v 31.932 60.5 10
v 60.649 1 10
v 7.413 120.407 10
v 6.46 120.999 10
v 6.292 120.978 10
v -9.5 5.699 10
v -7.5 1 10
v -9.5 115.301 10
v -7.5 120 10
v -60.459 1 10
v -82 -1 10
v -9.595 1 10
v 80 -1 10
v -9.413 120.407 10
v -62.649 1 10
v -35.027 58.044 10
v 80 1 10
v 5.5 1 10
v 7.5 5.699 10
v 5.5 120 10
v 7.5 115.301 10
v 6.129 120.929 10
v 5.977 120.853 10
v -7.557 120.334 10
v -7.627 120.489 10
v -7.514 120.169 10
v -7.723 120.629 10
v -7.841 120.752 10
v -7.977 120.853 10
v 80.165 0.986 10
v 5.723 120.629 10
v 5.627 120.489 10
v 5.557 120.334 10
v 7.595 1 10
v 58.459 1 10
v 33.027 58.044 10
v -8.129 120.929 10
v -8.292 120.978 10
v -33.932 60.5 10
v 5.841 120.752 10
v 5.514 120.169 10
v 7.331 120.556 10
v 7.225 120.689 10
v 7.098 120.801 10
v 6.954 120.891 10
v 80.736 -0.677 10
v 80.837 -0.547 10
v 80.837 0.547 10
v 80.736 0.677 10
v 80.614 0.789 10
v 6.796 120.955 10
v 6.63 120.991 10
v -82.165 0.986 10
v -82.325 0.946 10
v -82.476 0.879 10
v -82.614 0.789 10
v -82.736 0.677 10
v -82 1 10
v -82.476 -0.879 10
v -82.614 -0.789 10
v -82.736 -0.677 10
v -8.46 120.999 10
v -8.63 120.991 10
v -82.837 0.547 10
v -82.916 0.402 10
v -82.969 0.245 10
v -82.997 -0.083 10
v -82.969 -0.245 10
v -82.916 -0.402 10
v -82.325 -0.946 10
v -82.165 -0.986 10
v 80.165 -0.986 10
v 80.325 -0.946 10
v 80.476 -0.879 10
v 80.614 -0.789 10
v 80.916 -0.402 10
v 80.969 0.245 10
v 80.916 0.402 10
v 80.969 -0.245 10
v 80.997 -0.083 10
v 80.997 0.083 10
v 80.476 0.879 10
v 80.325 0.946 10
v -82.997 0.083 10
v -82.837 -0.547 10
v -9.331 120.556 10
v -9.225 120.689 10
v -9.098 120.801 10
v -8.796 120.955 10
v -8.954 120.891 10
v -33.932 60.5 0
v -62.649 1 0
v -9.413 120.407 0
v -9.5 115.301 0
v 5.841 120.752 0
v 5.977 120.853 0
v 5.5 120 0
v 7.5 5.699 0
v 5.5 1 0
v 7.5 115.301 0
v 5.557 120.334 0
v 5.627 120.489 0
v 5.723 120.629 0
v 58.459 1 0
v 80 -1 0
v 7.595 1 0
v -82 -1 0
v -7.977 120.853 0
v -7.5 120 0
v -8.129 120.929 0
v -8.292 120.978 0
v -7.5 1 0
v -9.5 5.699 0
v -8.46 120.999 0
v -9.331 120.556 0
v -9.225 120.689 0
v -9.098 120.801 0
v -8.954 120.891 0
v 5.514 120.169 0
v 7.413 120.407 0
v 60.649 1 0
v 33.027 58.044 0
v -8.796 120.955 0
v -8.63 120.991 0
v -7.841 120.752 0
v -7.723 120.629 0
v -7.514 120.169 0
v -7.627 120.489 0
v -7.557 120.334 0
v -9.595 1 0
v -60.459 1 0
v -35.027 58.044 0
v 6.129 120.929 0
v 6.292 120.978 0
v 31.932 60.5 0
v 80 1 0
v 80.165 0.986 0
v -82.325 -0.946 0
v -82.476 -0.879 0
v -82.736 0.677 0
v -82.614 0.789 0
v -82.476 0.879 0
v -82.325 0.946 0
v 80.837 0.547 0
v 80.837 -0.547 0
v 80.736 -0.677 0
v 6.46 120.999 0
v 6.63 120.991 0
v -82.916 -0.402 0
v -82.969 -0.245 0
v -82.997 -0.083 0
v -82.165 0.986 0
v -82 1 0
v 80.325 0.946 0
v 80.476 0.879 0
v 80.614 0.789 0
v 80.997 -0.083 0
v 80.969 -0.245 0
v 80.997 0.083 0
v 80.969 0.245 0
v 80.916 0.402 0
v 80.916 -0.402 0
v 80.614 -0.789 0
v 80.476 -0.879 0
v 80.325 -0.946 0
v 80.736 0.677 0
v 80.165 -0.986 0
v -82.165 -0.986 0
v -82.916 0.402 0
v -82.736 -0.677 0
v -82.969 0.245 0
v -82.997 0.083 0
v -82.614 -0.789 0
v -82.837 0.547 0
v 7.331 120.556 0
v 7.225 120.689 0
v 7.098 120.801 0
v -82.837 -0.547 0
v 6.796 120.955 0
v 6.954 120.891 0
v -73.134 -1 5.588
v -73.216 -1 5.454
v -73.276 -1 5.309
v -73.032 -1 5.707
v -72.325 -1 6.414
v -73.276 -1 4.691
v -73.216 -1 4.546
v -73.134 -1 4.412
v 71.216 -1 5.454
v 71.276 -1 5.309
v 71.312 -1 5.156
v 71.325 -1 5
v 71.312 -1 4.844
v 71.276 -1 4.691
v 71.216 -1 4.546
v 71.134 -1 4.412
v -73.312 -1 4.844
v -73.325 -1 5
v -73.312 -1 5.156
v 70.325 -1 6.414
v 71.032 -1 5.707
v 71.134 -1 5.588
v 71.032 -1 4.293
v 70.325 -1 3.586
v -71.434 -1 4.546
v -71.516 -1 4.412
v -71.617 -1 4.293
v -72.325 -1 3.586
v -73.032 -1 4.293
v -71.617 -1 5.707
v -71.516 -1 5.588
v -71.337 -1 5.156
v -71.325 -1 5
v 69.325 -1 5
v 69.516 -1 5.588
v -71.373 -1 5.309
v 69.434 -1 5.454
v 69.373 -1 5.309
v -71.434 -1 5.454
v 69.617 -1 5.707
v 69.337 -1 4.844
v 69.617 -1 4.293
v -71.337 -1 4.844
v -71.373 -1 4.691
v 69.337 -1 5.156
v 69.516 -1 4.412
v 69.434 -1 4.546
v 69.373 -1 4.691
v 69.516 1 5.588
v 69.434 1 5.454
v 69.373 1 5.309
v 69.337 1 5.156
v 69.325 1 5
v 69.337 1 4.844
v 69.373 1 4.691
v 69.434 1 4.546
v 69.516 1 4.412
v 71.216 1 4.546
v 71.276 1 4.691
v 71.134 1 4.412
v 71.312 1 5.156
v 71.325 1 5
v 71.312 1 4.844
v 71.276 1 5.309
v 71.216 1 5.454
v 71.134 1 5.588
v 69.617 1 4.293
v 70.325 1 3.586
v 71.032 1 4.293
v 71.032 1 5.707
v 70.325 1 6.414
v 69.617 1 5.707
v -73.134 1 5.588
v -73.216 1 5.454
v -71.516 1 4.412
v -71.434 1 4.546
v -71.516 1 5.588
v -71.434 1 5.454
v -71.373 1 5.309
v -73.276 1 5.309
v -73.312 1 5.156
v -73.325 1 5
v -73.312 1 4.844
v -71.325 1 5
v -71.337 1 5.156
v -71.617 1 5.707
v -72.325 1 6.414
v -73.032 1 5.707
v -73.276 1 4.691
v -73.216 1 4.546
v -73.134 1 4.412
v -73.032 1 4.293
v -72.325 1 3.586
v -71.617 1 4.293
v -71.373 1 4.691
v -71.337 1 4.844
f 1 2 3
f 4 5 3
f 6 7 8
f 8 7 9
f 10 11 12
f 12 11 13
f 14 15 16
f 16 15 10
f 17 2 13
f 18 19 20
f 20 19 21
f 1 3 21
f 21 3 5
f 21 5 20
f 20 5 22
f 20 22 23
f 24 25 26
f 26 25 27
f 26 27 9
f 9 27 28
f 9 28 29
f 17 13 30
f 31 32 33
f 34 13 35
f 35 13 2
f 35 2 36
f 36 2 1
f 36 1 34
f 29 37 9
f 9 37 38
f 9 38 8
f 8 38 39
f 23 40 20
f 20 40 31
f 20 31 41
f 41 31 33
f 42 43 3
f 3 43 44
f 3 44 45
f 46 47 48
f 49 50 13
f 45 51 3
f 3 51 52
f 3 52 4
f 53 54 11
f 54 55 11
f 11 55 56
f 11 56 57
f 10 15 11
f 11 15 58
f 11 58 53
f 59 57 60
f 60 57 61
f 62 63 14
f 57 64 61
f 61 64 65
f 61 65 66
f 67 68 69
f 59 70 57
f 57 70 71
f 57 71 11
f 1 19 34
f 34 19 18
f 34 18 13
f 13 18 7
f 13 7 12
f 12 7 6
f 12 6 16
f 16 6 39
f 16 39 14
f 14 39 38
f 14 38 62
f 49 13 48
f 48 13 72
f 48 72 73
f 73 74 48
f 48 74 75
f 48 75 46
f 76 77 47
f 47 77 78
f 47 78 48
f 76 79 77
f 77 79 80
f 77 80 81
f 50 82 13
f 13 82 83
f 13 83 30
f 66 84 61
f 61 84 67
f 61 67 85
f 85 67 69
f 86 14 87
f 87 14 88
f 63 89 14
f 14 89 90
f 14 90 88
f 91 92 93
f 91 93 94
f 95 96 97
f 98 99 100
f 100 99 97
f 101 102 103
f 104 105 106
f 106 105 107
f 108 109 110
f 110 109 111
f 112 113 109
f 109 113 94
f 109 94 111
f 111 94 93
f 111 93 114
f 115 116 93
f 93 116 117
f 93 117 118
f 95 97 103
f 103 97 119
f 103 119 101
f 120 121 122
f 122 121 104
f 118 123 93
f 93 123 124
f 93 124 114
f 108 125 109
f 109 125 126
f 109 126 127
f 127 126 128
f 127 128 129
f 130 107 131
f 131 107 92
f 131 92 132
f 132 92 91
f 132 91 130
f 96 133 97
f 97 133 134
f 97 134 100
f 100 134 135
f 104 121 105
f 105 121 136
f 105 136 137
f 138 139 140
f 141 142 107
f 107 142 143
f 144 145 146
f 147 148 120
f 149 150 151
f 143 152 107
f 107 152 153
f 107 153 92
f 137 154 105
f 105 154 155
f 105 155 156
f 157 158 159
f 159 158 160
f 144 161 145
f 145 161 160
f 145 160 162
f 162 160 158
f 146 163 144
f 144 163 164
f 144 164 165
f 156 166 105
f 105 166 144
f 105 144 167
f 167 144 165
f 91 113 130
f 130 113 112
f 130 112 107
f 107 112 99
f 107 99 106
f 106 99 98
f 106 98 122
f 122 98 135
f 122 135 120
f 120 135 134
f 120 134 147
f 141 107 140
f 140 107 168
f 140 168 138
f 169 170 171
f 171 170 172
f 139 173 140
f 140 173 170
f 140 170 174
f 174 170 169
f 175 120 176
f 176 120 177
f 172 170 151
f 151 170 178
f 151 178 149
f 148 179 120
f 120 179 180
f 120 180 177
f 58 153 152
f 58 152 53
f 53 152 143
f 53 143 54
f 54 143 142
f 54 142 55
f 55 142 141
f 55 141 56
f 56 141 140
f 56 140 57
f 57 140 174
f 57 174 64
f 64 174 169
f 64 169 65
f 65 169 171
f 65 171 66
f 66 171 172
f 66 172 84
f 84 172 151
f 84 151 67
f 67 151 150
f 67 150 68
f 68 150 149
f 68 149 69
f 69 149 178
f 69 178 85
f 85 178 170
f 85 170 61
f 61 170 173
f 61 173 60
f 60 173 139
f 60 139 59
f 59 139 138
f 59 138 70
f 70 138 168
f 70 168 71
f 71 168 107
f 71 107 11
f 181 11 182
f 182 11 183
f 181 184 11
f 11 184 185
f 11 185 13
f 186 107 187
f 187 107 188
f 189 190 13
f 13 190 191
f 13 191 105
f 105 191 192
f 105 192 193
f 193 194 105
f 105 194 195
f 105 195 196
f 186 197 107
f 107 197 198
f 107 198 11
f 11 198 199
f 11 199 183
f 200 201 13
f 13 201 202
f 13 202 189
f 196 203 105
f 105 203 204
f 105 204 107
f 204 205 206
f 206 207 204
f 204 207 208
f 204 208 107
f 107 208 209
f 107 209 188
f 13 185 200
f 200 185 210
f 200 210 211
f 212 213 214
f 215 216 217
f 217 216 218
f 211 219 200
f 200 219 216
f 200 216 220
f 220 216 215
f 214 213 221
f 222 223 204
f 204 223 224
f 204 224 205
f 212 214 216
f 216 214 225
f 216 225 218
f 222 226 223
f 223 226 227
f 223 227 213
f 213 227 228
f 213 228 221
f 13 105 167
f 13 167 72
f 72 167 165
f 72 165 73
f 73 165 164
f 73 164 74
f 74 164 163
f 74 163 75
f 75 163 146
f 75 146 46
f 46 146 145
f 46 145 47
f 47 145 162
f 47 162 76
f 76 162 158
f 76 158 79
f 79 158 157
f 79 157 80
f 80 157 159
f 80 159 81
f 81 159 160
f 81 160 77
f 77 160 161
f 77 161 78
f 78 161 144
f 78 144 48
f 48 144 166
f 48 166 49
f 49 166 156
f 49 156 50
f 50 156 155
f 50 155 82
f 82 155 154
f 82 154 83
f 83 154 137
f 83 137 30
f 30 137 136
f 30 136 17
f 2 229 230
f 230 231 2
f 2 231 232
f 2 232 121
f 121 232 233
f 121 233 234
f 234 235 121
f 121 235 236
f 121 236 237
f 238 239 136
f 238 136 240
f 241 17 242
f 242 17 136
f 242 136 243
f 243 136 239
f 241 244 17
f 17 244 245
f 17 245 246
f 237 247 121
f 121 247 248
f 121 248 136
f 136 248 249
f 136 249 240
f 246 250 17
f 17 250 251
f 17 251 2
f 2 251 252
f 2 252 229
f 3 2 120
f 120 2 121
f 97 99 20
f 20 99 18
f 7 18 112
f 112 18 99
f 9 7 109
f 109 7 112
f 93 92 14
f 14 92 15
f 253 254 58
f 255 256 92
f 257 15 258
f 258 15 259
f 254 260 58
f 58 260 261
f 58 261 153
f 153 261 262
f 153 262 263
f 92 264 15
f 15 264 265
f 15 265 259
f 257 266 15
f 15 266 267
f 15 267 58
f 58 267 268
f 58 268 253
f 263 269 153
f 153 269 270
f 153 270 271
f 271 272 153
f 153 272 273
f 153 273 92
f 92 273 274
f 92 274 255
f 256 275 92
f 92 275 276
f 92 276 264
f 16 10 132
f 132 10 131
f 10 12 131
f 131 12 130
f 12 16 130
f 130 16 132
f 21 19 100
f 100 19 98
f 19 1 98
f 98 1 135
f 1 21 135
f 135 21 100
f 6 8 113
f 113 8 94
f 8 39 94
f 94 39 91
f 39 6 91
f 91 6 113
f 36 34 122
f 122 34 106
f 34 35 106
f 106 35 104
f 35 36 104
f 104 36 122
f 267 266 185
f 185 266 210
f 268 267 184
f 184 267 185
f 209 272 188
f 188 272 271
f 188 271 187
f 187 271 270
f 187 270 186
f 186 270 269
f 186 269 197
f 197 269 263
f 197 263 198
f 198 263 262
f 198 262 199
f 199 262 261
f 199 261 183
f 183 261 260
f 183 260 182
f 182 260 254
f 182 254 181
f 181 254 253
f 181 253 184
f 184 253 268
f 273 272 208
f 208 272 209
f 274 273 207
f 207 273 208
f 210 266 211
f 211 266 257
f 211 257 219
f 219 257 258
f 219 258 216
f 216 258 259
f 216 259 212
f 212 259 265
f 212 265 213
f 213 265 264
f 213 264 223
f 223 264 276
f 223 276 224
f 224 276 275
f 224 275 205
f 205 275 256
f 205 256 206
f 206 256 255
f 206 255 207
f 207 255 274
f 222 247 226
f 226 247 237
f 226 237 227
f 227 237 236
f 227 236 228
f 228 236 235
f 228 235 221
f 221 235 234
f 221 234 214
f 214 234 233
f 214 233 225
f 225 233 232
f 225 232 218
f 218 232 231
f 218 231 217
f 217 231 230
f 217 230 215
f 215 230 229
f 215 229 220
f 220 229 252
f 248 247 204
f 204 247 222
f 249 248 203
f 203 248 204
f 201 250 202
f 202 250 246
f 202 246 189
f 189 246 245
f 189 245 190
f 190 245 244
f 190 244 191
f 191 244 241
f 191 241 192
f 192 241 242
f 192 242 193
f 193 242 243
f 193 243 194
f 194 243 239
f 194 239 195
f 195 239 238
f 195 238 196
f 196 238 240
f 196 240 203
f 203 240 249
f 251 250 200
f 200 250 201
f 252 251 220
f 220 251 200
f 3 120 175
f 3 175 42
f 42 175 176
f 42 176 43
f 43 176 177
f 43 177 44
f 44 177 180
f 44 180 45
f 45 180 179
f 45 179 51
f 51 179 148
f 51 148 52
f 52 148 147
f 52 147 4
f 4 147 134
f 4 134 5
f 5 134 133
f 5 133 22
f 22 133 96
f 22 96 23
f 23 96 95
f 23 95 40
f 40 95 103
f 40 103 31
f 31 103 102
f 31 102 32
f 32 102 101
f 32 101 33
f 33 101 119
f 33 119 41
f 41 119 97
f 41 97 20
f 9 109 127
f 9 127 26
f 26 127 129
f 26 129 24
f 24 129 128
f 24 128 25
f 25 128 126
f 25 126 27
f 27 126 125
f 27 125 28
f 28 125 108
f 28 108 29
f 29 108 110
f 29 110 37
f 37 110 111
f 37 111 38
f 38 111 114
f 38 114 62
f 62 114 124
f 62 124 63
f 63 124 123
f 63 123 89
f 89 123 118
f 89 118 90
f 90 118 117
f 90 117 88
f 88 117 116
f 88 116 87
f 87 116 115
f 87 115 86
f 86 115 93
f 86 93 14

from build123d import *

# Parameters (mm, degrees)
BOSS_EXTRUDE1_DEPTH = 10
CUT_EXTRUDE1_REACH  = 151.3
FILLET1_R           = 1
FILLET2_R           = 1


with BuildPart() as part:
    # Sketch2 → Boss-Extrude1 (new body)
    with BuildSketch(Plane.XY):
        with BuildLine():
            Line((0, -1), (60, -1))
            Line((60, -1), (80, -1))
            ThreePointArc((80, -1), (81, 0), (80, 1))
            Line((80, 1), (60.649049017, 1))
            Line((60.649049017, 1), (5.5, 124.698801533))
            Line((5.5, 124.698801533), (5.5, 1))
            Line((5.5, 1), (0, 1))
            Line((0, 1), (-2, 1))
            Line((-2, 1), (-7.5, 1))
            Line((-7.5, 1), (-7.5, 124.698801533))
            Line((-7.5, 124.698801533), (-62.649049017, 1))
            Line((-62.649049017, 1), (-82, 1))
            ThreePointArc((-82, 1), (-83, 0), (-82, -1))
            Line((-82, -1), (-62, -1))
            Line((-62, -1), (-2, -1))
            Line((-2, -1), (0, -1))
        make_face()
        Polygon((7.59488235, 1), (58.459284316, 1), (33.027083333, 58.044189121), align=None, mode=Mode.SUBTRACT)
        Polygon((31.932200983, 60.5), (7.5, 5.698801533), (7.5, 115.301198467), align=None, mode=Mode.SUBTRACT)
        Polygon((-35.027083333, 58.044189121), (-9.59488235, 1), (-60.459284316, 1), align=None, mode=Mode.SUBTRACT)
        Polygon((-9.5, 115.301198467), (-33.932200983, 60.5), (-9.5, 5.698801533), align=None, mode=Mode.SUBTRACT)
    extrude(amount=BOSS_EXTRUDE1_DEPTH)

    # Sketch3 → Cut-Extrude1 (cut, up to next)
    with BuildSketch(Plane(origin=(0, 1, 0), x_dir=(1, 0, 0), z_dir=(0, 1, 0)), mode=Mode.PRIVATE) as cut_extrude1_sk1:
        with BuildLine():
            Line((-72.324524509, -3.585786438), (-73.03163129, -4.292893219))
            ThreePointArc((-73.03163129, -4.292893219), (-73.324524509, -5), (-73.03163129, -5.707106781))
            Line((-73.03163129, -5.707106781), (-72.324524509, -6.414213562))
            Line((-72.324524509, -6.414213562), (-71.617417727, -5.707106781))
            ThreePointArc((-71.617417727, -5.707106781), (-71.324524509, -5), (-71.617417727, -4.292893219))
            Line((-71.617417727, -4.292893219), (-72.324524509, -3.585786438))
        make_face()
    cut_extrude1_tool1 = extrude(cut_extrude1_sk1.sketch, amount=-CUT_EXTRUDE1_REACH, mode=Mode.PRIVATE) & part.part
    # Sketch3 → Cut-Extrude1 (cut, up to next)
    with BuildSketch(Plane(origin=(0, 1, 0), x_dir=(1, 0, 0), z_dir=(0, 1, 0)), mode=Mode.PRIVATE) as cut_extrude1_sk2:
        with BuildLine():
            Line((69.617417727, -5.707106781), (70.324524509, -6.414213562))
            Line((70.324524509, -6.414213562), (71.03163129, -5.707106781))
            ThreePointArc((71.03163129, -5.707106781), (71.324524509, -5), (71.03163129, -4.292893219))
            Line((71.03163129, -4.292893219), (70.324524509, -3.585786438))
            Line((70.324524509, -3.585786438), (69.617417727, -4.292893219))
            ThreePointArc((69.617417727, -4.292893219), (69.324524509, -5), (69.617417727, -5.707106781))
        make_face()
    cut_extrude1_tool2 = extrude(cut_extrude1_sk2.sketch, amount=-CUT_EXTRUDE1_REACH, mode=Mode.PRIVATE) & part.part
    add(cut_extrude1_tool1.solids().sort_by_distance((-72.324525, 1, 5))[0], mode=Mode.SUBTRACT)
    add(cut_extrude1_tool2.solids().sort_by_distance((70.324525, 1, 5))[0], mode=Mode.SUBTRACT)

    # Fillet1
    fillet1_edges = [part.edges().sort_by_distance(p)[0] for p in [
        (5.5, 124.698801533, 5),
    ]]
    fillet(fillet1_edges, radius=FILLET1_R)

    # Fillet2
    fillet2_edges = [part.edges().sort_by_distance(p)[0] for p in [
        (-7.5, 124.698801533, 5),
    ]]
    fillet(fillet2_edges, radius=FILLET2_R)


solid = part.part
